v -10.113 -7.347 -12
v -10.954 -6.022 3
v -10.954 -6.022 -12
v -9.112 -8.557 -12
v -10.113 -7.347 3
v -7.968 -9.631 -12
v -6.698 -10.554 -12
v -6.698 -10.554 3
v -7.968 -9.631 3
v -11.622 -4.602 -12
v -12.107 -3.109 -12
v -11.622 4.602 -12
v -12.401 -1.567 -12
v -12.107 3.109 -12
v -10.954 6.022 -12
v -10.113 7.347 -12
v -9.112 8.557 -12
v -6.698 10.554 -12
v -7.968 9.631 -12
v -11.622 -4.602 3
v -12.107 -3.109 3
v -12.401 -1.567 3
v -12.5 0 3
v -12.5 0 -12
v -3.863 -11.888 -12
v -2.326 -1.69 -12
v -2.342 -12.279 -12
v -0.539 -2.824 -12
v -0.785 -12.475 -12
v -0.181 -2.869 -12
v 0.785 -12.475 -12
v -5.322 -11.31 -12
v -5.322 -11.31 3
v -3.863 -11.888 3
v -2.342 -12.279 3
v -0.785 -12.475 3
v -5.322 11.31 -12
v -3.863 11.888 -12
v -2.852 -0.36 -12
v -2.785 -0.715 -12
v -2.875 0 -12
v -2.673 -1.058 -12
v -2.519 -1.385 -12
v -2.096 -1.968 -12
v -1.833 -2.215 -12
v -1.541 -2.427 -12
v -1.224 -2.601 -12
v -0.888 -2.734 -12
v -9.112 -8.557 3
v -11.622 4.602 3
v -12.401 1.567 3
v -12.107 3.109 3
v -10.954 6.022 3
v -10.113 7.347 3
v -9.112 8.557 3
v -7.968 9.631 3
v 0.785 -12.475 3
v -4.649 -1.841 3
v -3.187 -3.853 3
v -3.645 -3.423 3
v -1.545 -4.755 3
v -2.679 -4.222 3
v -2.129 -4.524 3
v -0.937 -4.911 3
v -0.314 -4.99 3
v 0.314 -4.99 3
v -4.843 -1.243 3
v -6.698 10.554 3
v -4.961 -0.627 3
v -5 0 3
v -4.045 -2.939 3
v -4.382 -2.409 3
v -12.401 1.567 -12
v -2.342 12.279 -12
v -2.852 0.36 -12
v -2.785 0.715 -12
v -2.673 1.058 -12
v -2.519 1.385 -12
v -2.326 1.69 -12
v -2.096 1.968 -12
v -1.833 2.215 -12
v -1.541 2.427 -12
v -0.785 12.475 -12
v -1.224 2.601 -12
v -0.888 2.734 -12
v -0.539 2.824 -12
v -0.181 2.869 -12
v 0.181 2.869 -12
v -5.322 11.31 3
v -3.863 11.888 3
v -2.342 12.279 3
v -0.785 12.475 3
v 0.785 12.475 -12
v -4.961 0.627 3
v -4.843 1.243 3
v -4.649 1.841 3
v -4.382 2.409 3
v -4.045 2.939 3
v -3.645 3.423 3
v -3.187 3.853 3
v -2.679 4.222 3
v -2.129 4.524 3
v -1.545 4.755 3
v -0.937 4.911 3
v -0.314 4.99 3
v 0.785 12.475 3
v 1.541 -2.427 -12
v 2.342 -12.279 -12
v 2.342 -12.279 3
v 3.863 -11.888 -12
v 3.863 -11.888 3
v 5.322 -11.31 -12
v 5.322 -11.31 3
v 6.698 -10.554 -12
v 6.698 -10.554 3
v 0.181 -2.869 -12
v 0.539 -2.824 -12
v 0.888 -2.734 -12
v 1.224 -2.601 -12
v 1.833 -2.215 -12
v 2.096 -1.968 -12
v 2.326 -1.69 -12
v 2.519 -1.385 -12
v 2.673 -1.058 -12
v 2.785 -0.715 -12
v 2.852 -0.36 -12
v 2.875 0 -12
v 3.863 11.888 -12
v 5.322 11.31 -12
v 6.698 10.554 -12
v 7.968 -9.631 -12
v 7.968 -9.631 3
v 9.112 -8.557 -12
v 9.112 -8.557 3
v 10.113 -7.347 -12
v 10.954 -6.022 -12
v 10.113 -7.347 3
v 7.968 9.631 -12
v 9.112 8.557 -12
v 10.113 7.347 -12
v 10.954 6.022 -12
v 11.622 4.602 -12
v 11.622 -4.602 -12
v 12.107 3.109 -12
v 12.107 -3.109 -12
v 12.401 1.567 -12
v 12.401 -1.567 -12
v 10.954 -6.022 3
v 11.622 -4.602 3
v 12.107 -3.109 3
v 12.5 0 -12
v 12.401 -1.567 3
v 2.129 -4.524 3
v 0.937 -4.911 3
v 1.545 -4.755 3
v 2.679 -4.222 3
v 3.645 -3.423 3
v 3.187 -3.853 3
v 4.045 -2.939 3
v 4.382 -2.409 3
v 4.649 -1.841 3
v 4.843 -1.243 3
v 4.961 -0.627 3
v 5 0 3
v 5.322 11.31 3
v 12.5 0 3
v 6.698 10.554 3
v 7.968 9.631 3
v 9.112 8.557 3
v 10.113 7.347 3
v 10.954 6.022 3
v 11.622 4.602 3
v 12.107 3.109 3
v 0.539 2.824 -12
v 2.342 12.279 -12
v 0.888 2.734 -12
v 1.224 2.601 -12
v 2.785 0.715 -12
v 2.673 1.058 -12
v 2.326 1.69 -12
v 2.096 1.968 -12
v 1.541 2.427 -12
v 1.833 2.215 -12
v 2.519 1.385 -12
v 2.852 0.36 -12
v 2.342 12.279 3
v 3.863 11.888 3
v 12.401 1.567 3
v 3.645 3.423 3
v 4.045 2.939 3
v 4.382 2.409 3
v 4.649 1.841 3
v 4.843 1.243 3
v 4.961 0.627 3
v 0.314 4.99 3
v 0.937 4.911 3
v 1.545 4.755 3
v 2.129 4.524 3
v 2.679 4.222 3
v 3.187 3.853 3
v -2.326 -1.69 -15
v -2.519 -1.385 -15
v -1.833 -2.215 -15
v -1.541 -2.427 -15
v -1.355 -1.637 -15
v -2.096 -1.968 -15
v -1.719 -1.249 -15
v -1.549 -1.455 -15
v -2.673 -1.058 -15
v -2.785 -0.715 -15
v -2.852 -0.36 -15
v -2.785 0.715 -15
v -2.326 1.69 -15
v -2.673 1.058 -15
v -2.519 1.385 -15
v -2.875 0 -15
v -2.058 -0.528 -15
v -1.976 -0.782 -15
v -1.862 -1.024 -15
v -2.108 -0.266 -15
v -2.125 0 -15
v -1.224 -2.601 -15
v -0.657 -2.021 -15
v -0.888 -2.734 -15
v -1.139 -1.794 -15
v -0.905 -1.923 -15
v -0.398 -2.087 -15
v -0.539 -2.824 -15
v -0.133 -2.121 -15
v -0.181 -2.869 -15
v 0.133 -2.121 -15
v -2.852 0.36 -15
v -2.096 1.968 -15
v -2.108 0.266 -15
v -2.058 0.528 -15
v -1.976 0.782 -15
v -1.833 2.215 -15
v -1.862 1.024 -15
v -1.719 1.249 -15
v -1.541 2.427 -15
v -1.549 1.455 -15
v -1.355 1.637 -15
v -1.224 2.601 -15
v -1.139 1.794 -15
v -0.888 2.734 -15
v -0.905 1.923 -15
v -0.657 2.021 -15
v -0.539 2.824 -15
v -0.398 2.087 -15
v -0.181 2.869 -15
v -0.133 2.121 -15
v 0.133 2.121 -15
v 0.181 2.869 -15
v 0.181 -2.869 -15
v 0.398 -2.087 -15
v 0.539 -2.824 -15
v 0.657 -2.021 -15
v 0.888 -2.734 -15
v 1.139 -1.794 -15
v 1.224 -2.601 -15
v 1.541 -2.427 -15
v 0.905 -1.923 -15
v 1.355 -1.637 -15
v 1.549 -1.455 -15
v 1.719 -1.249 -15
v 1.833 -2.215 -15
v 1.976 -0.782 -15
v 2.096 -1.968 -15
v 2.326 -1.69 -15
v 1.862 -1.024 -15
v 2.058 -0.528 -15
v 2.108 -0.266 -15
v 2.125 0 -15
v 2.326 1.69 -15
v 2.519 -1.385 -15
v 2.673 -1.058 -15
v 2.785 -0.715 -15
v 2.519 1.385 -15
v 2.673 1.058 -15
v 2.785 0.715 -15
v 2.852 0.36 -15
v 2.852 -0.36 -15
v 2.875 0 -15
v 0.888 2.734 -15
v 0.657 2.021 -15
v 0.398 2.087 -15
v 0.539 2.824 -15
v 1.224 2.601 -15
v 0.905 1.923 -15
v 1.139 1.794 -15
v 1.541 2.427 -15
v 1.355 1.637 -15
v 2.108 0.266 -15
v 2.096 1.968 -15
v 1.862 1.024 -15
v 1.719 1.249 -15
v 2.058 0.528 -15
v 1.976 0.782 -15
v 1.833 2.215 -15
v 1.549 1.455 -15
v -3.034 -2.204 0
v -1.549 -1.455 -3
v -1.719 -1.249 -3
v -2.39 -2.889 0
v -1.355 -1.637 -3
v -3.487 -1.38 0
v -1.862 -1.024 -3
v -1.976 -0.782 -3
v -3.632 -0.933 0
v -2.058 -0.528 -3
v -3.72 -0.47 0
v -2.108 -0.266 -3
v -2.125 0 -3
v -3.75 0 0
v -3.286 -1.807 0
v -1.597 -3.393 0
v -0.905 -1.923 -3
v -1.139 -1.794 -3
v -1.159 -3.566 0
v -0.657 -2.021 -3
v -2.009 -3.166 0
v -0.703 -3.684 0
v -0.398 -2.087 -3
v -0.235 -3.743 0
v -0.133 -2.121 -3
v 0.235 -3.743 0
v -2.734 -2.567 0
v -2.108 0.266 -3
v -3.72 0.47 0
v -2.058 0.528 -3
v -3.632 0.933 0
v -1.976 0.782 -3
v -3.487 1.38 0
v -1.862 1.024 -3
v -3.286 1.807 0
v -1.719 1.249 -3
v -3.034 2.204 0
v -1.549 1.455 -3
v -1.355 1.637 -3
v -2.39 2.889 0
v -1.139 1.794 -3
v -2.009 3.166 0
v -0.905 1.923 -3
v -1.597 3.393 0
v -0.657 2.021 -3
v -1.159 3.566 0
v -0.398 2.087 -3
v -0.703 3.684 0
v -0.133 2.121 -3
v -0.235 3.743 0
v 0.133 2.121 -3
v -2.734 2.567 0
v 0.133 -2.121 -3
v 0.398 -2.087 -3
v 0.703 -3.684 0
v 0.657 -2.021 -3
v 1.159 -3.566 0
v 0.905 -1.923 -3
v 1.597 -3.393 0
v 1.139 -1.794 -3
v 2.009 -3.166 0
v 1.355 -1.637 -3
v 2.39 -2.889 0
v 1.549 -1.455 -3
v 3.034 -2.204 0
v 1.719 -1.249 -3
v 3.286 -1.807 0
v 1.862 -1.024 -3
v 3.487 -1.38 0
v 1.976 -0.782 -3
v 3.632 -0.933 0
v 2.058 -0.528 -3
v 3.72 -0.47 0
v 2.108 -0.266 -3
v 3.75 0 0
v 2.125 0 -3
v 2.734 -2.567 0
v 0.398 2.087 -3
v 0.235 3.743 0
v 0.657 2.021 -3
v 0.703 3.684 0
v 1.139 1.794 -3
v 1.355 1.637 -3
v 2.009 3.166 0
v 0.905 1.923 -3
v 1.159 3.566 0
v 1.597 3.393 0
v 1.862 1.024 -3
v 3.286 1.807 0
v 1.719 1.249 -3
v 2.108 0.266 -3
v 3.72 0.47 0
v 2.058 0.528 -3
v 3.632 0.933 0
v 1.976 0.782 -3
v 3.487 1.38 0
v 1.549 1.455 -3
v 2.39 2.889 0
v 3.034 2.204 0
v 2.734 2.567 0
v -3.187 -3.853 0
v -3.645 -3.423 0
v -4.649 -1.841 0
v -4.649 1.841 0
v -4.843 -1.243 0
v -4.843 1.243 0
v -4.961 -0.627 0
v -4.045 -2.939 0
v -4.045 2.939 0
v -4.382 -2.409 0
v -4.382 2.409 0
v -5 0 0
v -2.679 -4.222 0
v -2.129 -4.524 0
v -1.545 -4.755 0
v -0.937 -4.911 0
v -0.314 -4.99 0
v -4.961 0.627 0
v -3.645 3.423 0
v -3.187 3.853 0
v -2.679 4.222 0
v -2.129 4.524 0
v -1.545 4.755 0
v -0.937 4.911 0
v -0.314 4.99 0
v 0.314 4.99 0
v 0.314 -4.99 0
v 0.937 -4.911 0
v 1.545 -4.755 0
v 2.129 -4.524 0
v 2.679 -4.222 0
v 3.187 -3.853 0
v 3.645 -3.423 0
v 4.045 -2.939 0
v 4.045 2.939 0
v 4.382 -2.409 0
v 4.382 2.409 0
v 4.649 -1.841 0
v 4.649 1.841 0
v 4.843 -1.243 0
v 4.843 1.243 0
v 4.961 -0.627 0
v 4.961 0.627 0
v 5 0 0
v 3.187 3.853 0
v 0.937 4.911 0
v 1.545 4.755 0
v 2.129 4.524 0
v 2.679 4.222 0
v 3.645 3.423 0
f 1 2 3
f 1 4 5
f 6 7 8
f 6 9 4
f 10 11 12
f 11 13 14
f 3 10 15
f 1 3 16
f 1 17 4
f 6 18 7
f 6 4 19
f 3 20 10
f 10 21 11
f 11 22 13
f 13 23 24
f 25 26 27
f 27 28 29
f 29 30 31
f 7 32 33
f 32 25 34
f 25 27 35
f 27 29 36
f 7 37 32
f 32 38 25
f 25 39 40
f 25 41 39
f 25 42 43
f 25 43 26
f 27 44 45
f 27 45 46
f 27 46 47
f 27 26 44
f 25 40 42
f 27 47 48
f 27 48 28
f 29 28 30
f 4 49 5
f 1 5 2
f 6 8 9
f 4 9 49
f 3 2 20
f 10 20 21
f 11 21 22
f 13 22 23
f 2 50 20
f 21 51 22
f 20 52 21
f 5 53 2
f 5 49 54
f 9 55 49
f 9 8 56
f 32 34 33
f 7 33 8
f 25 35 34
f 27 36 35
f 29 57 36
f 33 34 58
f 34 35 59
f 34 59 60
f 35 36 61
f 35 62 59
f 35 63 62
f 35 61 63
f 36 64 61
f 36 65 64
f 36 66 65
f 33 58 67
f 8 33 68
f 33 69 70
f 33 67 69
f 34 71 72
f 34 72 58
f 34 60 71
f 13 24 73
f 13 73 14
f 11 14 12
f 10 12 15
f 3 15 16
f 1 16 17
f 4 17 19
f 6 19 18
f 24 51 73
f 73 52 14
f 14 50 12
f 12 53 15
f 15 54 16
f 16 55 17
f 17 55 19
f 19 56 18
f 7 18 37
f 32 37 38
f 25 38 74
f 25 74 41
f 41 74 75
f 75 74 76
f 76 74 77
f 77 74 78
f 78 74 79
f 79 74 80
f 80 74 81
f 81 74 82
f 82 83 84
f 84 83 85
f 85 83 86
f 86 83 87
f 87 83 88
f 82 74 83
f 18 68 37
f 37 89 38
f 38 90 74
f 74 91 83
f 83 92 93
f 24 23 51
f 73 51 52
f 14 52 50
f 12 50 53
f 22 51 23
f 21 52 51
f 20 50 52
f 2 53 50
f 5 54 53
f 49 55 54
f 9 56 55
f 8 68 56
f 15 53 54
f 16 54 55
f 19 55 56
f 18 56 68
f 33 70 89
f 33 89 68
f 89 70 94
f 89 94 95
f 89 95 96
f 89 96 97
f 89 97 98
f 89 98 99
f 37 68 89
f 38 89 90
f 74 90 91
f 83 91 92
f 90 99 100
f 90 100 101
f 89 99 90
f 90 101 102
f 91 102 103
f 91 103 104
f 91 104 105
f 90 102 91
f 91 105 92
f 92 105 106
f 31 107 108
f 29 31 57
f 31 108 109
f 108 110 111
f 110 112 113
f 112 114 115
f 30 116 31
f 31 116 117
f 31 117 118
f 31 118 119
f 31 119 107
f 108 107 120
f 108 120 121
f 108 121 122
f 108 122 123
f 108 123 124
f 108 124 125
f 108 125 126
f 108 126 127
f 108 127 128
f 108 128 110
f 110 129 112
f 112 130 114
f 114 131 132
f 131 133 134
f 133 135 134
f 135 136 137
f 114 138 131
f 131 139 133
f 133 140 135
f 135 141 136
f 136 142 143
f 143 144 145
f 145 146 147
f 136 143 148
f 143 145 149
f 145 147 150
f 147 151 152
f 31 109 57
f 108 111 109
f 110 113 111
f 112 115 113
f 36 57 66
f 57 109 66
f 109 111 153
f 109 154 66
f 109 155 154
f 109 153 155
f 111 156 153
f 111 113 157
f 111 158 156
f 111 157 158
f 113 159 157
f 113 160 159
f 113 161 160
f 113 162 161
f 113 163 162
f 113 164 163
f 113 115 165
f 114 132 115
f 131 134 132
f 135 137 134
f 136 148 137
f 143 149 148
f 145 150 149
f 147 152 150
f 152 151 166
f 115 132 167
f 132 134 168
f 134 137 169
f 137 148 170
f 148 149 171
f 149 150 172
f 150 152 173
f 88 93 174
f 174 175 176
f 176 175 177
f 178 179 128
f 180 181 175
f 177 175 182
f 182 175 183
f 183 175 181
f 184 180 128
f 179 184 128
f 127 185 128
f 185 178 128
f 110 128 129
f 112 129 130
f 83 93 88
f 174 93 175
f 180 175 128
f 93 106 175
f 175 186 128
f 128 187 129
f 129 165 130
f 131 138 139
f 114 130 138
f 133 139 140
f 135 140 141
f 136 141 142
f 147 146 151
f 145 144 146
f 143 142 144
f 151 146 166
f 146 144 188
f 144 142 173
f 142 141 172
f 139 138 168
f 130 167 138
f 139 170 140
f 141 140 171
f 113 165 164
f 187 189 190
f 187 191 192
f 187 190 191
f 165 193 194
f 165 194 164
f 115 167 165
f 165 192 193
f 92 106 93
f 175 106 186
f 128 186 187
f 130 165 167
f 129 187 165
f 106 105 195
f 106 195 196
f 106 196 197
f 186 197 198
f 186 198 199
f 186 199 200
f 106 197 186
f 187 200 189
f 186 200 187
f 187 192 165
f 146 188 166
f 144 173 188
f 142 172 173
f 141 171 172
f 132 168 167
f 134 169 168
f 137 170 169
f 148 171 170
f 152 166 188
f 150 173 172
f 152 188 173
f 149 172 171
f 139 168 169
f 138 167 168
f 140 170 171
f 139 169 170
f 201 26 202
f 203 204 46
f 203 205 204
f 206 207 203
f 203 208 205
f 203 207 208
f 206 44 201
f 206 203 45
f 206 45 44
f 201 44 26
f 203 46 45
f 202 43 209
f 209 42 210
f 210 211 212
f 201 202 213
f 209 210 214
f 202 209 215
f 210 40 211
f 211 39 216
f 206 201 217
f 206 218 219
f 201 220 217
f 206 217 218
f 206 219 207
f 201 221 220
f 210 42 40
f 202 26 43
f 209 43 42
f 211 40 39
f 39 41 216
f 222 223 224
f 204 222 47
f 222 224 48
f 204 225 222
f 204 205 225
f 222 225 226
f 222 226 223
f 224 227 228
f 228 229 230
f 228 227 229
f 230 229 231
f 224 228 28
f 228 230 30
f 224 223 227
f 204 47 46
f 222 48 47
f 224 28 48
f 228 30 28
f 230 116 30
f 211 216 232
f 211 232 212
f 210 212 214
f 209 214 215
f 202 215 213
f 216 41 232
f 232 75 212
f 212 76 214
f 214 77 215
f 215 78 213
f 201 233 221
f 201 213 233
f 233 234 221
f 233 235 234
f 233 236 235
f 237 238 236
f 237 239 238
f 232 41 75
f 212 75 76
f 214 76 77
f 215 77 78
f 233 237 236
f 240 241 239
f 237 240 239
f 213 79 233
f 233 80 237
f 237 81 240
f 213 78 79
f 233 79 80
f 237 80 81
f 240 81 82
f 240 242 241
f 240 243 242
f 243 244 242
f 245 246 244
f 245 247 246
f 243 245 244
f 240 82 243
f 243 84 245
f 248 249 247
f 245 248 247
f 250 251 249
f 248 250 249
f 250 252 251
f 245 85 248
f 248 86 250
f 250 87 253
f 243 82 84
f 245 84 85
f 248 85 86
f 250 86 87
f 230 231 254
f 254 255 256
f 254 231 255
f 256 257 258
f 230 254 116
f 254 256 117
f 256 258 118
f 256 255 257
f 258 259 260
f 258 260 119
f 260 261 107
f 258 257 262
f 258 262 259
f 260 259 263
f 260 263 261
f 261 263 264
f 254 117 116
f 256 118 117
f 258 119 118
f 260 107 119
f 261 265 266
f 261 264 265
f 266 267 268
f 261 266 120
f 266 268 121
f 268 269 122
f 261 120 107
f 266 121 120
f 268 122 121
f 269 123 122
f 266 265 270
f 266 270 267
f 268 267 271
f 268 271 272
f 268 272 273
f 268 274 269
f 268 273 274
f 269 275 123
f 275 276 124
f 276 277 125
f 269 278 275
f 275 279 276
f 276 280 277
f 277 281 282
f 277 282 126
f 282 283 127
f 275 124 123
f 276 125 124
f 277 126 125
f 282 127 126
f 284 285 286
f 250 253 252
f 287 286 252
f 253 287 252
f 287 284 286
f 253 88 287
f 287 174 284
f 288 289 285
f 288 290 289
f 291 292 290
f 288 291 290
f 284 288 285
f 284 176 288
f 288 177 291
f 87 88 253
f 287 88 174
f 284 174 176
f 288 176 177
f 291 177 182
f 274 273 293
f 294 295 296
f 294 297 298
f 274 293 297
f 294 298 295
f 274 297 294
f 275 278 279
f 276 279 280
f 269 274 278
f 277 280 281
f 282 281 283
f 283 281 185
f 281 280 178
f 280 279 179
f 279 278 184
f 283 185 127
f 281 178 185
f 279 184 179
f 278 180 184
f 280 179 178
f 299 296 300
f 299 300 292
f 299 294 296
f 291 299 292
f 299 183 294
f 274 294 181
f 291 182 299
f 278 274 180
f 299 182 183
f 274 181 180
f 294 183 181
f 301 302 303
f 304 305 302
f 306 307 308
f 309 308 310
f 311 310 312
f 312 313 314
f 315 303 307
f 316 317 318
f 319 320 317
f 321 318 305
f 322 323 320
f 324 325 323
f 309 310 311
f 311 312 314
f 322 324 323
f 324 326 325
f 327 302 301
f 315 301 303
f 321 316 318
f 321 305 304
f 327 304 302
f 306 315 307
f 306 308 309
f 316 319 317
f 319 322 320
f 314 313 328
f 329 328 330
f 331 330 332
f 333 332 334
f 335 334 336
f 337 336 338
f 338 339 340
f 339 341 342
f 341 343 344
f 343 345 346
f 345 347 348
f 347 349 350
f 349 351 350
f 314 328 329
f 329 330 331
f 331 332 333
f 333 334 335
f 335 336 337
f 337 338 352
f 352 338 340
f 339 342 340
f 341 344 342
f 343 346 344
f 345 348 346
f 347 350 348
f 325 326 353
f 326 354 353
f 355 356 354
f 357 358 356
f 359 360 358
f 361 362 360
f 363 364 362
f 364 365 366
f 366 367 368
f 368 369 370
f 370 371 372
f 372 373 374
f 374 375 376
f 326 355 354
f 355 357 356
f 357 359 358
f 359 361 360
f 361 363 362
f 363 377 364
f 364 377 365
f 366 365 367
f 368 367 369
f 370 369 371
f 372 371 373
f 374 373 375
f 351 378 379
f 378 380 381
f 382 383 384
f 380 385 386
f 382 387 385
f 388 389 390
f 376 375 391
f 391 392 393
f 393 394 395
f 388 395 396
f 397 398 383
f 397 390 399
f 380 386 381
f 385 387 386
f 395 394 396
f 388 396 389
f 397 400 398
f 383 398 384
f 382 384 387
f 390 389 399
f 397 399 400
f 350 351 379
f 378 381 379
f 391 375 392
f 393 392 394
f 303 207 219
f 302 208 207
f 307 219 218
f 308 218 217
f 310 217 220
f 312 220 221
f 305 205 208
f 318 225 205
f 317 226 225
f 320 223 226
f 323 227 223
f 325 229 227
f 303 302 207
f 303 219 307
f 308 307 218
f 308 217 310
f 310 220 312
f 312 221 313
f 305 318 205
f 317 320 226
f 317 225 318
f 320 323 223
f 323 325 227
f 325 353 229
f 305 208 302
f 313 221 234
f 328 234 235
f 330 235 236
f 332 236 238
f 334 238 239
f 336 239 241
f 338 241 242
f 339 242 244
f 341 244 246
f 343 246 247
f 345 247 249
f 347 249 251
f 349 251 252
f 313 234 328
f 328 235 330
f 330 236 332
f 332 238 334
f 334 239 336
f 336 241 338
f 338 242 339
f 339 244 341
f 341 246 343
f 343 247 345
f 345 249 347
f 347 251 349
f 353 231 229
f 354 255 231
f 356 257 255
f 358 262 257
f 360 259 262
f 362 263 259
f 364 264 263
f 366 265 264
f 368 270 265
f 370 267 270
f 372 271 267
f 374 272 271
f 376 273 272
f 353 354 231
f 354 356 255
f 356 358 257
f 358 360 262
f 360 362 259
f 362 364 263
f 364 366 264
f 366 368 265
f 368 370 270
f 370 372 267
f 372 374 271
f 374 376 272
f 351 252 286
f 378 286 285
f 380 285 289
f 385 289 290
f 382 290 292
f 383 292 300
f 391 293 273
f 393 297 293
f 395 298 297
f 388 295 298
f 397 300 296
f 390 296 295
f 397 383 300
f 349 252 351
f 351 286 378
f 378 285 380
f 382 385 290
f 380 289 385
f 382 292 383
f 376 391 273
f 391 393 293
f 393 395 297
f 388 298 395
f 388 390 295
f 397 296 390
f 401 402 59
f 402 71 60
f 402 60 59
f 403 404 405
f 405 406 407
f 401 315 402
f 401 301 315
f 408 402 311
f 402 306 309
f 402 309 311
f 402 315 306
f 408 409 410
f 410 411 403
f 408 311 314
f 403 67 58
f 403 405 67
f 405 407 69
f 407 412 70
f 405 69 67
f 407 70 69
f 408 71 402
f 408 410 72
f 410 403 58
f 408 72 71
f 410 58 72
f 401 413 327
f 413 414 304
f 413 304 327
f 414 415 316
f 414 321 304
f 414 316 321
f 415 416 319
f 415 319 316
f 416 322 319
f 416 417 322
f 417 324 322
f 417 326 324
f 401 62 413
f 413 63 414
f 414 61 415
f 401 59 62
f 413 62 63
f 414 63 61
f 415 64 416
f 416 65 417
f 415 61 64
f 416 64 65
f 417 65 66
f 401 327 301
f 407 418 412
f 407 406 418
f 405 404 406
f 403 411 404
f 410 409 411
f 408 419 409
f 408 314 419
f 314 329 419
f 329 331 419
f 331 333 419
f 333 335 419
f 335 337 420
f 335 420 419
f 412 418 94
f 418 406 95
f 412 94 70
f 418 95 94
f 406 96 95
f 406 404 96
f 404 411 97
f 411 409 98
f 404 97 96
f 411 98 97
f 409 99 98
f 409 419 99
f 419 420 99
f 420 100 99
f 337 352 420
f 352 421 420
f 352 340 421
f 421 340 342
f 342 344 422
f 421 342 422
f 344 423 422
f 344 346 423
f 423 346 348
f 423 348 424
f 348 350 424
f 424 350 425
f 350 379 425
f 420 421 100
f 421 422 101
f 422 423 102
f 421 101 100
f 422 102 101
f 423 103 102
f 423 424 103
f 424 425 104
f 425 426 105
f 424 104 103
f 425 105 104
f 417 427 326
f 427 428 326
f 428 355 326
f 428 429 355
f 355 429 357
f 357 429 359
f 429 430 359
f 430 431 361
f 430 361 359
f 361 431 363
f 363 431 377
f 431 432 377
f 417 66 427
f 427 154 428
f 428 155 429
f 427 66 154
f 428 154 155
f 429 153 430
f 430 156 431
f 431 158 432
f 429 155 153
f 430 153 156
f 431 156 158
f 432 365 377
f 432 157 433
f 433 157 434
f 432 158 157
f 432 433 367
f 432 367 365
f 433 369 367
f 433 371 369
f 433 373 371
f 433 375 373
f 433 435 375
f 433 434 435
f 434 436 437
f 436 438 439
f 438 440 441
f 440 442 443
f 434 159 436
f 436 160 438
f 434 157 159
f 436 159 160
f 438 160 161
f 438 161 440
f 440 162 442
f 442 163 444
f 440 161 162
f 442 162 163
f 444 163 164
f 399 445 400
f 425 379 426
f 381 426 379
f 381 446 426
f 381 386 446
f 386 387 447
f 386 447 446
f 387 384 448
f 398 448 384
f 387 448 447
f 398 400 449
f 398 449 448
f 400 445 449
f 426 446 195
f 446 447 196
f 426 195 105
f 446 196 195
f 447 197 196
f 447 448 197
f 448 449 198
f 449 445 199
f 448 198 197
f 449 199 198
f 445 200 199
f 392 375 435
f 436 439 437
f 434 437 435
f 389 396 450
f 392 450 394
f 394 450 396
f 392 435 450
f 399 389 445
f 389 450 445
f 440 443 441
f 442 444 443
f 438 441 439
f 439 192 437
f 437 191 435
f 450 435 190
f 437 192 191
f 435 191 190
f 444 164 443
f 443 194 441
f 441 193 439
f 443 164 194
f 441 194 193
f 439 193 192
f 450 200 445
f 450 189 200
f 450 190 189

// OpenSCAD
$fn = 50;


difference() {
	union() {
		translate(v = [0, 0, -12.0000000000]) {
			cylinder(h = 15, r = 12.5000000000);
		}
		#translate(v = [0, 0, -15.0000000000]) {
			cylinder(h = 15, r = 2.8750000000);
		}
	}
	union() {
		translate(v = [0, 0, 0]) {
			rotate(a = [0, 0, 0]) {
				difference() {
					union() {
						translate(v = [0, 0, -15.0000000000]) {
							cylinder(h = 15, r = 2.0000000000);
						}
						translate(v = [0, 0, -3]) {
							cylinder(h = 3, r1 = 2.1250000000, r2 = 3.7500000000);
						}
						translate(v = [0, 0, -15.0000000000]) {
							cylinder(h = 15, r = 2.1250000000);
						}
						translate(v = [0, 0, -15.0000000000]) {
							cylinder(h = 15, r = 2.0000000000);
						}
					}
					union();
				}
			}
		}
		#cylinder(h = 3, r = 5.0000000000);
	}
}
